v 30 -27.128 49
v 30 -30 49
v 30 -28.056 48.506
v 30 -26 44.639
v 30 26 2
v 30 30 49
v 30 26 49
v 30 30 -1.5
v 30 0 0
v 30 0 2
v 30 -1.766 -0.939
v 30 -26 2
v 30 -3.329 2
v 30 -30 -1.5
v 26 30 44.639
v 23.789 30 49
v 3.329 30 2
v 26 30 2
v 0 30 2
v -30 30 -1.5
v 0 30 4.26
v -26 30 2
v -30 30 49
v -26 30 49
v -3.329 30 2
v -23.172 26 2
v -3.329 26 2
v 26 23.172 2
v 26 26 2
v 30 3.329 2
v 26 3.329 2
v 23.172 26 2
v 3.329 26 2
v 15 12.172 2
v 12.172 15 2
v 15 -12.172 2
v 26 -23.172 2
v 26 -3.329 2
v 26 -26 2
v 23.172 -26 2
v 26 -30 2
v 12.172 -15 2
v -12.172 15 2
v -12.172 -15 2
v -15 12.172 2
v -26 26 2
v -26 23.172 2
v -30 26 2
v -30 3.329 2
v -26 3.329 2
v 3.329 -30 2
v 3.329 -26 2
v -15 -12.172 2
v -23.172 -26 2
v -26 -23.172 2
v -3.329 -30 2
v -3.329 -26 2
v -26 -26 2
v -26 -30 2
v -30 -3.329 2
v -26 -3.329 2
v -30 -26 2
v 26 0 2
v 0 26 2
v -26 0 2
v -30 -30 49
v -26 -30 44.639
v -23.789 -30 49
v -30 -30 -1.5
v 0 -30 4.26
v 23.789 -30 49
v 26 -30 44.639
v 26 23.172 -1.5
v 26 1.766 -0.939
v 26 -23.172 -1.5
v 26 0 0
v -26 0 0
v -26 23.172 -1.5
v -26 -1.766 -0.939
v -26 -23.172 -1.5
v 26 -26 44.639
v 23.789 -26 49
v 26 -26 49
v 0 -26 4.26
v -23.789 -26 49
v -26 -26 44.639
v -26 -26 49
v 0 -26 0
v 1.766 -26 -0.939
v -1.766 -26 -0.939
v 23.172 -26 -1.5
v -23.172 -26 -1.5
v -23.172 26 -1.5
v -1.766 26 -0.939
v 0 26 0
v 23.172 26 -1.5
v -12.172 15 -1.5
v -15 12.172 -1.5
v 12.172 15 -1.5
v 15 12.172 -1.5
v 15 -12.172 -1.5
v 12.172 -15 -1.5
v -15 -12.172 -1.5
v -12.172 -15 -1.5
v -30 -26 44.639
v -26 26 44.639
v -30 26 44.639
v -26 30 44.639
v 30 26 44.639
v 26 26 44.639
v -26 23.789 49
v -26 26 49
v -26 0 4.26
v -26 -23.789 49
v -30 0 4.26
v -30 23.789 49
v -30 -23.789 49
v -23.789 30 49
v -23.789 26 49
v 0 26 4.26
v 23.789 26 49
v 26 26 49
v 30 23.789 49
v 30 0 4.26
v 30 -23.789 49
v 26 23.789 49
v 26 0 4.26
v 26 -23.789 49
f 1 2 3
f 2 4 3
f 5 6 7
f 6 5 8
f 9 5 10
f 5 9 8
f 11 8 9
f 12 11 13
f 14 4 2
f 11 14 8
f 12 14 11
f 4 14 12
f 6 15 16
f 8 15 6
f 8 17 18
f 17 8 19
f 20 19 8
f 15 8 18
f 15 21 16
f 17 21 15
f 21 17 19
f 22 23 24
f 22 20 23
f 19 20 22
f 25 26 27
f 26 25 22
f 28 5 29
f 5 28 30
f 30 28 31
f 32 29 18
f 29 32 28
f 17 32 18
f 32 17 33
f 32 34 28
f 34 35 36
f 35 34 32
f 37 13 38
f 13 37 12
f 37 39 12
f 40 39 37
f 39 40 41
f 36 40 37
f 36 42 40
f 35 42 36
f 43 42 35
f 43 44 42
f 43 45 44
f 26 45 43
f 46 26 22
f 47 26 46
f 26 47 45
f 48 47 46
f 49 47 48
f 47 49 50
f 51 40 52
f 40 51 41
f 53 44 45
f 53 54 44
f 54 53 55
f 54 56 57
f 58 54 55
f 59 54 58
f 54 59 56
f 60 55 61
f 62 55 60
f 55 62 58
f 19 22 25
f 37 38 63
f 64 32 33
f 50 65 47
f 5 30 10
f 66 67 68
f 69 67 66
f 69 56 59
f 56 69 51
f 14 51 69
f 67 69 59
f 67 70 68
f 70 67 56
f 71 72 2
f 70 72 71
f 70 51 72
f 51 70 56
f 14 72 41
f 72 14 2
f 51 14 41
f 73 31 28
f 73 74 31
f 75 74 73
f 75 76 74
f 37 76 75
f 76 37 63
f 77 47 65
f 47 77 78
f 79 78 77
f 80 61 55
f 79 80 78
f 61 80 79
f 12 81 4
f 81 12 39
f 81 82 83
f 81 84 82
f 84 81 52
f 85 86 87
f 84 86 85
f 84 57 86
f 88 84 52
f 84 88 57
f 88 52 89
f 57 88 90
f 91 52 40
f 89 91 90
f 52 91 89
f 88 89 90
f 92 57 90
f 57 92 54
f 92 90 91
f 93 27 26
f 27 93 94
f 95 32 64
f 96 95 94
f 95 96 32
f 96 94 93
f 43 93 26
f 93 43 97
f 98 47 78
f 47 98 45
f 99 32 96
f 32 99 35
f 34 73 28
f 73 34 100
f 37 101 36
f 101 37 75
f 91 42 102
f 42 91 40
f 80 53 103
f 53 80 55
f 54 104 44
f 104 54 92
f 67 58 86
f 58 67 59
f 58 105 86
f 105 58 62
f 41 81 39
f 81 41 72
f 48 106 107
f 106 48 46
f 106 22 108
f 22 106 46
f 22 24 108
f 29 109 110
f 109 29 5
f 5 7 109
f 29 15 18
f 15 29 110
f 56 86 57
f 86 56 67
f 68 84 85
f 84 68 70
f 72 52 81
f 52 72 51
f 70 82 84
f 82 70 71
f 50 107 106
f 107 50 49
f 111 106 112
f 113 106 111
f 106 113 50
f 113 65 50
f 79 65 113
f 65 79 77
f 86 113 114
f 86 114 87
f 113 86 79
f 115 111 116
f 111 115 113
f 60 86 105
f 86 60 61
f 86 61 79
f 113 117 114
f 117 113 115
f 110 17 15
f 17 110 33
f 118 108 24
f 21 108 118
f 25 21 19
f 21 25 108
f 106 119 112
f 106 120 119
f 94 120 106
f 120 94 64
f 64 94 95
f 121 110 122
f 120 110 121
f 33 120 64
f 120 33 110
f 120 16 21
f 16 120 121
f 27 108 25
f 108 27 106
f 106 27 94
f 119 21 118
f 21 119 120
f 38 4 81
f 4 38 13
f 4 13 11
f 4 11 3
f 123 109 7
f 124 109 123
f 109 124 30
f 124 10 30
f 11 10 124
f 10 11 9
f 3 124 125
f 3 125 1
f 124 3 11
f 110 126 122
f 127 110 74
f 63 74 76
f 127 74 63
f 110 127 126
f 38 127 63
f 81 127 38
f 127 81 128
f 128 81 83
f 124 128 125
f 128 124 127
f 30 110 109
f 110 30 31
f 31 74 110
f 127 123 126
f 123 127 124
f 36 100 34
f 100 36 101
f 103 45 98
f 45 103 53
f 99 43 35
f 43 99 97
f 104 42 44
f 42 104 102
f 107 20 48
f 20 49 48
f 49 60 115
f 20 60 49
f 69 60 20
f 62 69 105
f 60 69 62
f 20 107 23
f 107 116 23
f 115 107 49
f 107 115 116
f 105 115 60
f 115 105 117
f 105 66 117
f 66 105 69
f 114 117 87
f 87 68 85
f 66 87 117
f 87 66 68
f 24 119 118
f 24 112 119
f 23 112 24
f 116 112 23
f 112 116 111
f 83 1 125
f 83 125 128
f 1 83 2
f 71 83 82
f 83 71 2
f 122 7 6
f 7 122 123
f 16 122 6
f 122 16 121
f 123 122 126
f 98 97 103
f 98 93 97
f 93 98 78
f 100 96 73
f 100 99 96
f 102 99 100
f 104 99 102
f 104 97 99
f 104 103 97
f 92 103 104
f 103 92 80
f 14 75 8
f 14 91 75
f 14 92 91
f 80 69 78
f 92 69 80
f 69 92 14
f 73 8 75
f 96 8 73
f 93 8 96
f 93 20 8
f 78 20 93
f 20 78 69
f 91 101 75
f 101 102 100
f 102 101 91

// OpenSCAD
// file: ../lib/torus.scad
module torus(
outer_diameter,
circle_diameter
) {
    rotate_extrude(convexity = 4)
    translate([(outer_diameter-circle_diameter)/2, 0, 0])
    circle(d=circle_diameter, $fn=$fn/3);
}
// file: ../rocket-bottom.scad
use <lib/centered_cube.scad>
use <lib/torus.scad>

translate([0,0,-1.1])
ccube([93,93,1]);

module nozzle() {
    color([.2,.2,.2])
    cylinder(d1=40, d2=16+(40-16)*((40-16)/40), h=16);

    color([.35,.35,.35])
    translate([0,0,16])
    torus(34, 5);

    color([.5,.5,.5])
    translate([0,0,16])
    cylinder(d1=16+(40-16)*((40-16)/40), d2=16, h=40-16);
}


module nozzle_and_fin() {
    nozzle();

    color([.8, .8, .8])
    translate([0,0,41.6]) {
        intersection() {
            cylinder(d=38, h=16);
            translate([0,0,-1])
            ccube([50,50,20], centered=[0,1,0]);
        }
        rotate([0,0,180])
        ccube([4,38,16], centered=[0,1,0]);
    }
    
    color([0,0,0])
    translate([0,0,40])
    ccube([16, 16, 8], centered=[1,1,0]);


    // fin mount
    color([1,1,1])
    translate([0,0,57.6])
    resize([38,32,64])
    cylinder(d1=32, d2=16, h=64);

    // fin
    color([1,1,1])
    translate([18,0,65.6])
    rotate([90,0,0])
    translate([0,0,-0.8])
    linear_extrude(height=1.6) {
        polygon(points=[
            [0,0],
            [3,-8],
            [32, -22],
            [32, -6],
            [0, 24]
        ]);
    }
}

module rocket_bottom() {
    nozzle();
    color([.8, .8, .8])
    translate([0,0,40])
    cylinder(d=16, h=18);

    for (r = [0:1:3]) {
        rotate([0,0,r*90])
        translate([42.5,0,0])
        nozzle_and_fin();
    }
    
    // bottom of fuel tank
    color([1,1,1])
    translate([0,0,58])
    cylinder(d=80, h=32);
}

rocket_bottom();
// file: ../lib/lego_brick_builder.scad
/*

 Basic Lego brick builder module for OpenScad by Jorg Janssen 2013 (CC BY-NC 3.0) 
 To use this in your own projects add:

 use <path_to_this_file/lego_brick_builder.scad>
 brick (length, width, height [,smooth]);

 Length and width are in standard lego brick dimensions. 
 Height is in flat brick heights, so for a normal lego brick height = 3.
 Add optional smooth = true for a brick without studs. 
 Use height = 0 to just put studs/knobs on top of other things.

 */
$fn = 50;
 
 // this is it:
brick(5,3,3);


// and this is how it's done:

FLU = 1.6; // Fundamental Lego Unit = 1.6 mm

BRICK_WIDTH = 5*FLU; // basic brick width
BRICK_HEIGHT = 6*FLU; // basic brick height
PLATE_HEIGHT = 2*FLU; // basic plate height
WALL_THICKNESS = FLU; // outer wall of the brick
STUD_RADIUS = 1.5*FLU; // studs are the small cylinders on top of the brick with the lego logo ('nopje' in Dutch)
STUD_HEIGHT = FLU; 
ANTI_STUD_RADIUS = 0.5*4.07*FLU;  // an anti stud is the hollow cylinder inside bricks that have length > 1 and width > 1
PIN_RADIUS = FLU; // a pin is the small cylinder inside bricks that have length = 1 or width = 1
SUPPORT_THICKNESS = 0.254; // support is the thin surface between anti studs, pins and walls, your printer might not print this thin, try thicker!
EDGE = 0.254; // this is the width and height of the bottom line edge of smooth bricks
CORRECTION = 0.1; // addition to each size, to make sure all parts connect by moving them a little inside each other

module brick(length = 4, width = 2, height = 3, smooth = false){

	// brick shell
	difference(){
		cube(size = [length*BRICK_WIDTH,width*BRICK_WIDTH,height*PLATE_HEIGHT]);
		translate([WALL_THICKNESS,WALL_THICKNESS,-WALL_THICKNESS])
		union(){
			cube(size = [length*BRICK_WIDTH-2*WALL_THICKNESS,width*BRICK_WIDTH-2*WALL_THICKNESS,height*PLATE_HEIGHT]);
			// stud inner holes, radius = pin radius
			if (!smooth) {
				translate([STUD_RADIUS+WALL_THICKNESS,STUD_RADIUS+WALL_THICKNESS,height*PLATE_HEIGHT])
				for (y = [0:width-1]){
					for (x = [0:length-1]){
						translate ([x*BRICK_WIDTH-WALL_THICKNESS,y*BRICK_WIDTH-WALL_THICKNESS,-CORRECTION])
						cylinder(h=WALL_THICKNESS+2*CORRECTION,r=PIN_RADIUS);
					}
				}
			}
			// small bottom line edge for smooth bricks
			else {
				translate([-WALL_THICKNESS-CORRECTION,-WALL_THICKNESS-CORRECTION,FLU-CORRECTION]) 
				difference() {
					cube([length*BRICK_WIDTH+2*CORRECTION,width*BRICK_WIDTH+2*CORRECTION,EDGE+CORRECTION]);
					translate([EDGE+CORRECTION,EDGE+CORRECTION,-CORRECTION])
					cube([length*BRICK_WIDTH-2*EDGE,width*BRICK_WIDTH-2*EDGE,EDGE+3*CORRECTION]); 
				}
			}
		}
	}
	// Studs
	if(!smooth){
		translate([STUD_RADIUS+WALL_THICKNESS,STUD_RADIUS+WALL_THICKNESS,height*PLATE_HEIGHT])
		for (y = [0:width-1]){
			for (x = [0:length-1]){
				translate ([x*BRICK_WIDTH,y*BRICK_WIDTH,-CORRECTION])
				difference(){
					cylinder(h=STUD_HEIGHT+CORRECTION, r=STUD_RADIUS);
					// Stud inner holes
					translate([0,0,-CORRECTION])
					cylinder(h=0.5*STUD_HEIGHT+CORRECTION,r=PIN_RADIUS);
				}
				// tech logo - disable this if your printer isn't capable of printing this small
				if ( length > width){
					translate([x*BRICK_WIDTH+0.8,y*BRICK_WIDTH-1.9,STUD_HEIGHT-CORRECTION])
					resize([1.2*1.7,2.2*1.7,0.254+CORRECTION])
					rotate(a=[0,0,90])
					import("tech.stl");
				}
				else {
					translate([x*BRICK_WIDTH-1.9,y*BRICK_WIDTH-0.8,STUD_HEIGHT-CORRECTION])
					resize([2.2*1.7,1.2*1.7,0.254+CORRECTION])
					import("tech.stl");				
				}				
				/* 
				// Alternative 2-square logo
				translate ([x*BRICK_WIDTH+CORRECTION,y*BRICK_WIDTH-CORRECTION,STUD_HEIGHT-CORRECTION])		
				cube([1,1,2*CORRECTION]);
				translate ([x*BRICK_WIDTH-0.9,y*BRICK_WIDTH-0.9,STUD_HEIGHT-CORRECTION])		
				cube([1,1,0.3]);
				*/				
			}
		}
	}
	// Pins x
	if (width == 1 && length > 1) {	
			for (x = [1:length-1]){
				translate([x*BRICK_WIDTH,0.5*BRICK_WIDTH,0])
				cylinder(h=height*PLATE_HEIGHT-WALL_THICKNESS+CORRECTION,r=PIN_RADIUS);
				// Supports
				if (height > 1) {
				translate([x*BRICK_WIDTH-0.5*SUPPORT_THICKNESS,CORRECTION,STUD_HEIGHT])
				cube(size=[SUPPORT_THICKNESS,BRICK_WIDTH-2*CORRECTION,height*PLATE_HEIGHT-STUD_HEIGHT-WALL_THICKNESS+CORRECTION]);
			}
		}
	}
	// Pins y
	if (length == 1 && width > 1) {	
			for (y = [1:width-1]){
			translate([0.5*BRICK_WIDTH,y*BRICK_WIDTH,0])
			cylinder(h=height*PLATE_HEIGHT-WALL_THICKNESS+CORRECTION,r=PIN_RADIUS);
			// Supports
			if (height > 1) {
			translate([CORRECTION,y*BRICK_WIDTH-0.5*SUPPORT_THICKNESS,STUD_HEIGHT])
			cube(size=[BRICK_WIDTH-2*CORRECTION,SUPPORT_THICKNESS,height*PLATE_HEIGHT-STUD_HEIGHT-WALL_THICKNESS+CORRECTION]);}
			
		}
	}
	// Anti Studs
	if (width > 1 && length > 1){
		difference(){
			union(){
				for(y = [1:width-1]){
					for(x = [1:length-1]){
						// anti studs
						translate([x*BRICK_WIDTH,y*BRICK_WIDTH,0])
						cylinder (h=height*PLATE_HEIGHT-WALL_THICKNESS+CORRECTION, r = ANTI_STUD_RADIUS);
						// Supports
						if (height > 1){
							// Support x
							if (x%2 == 0 && (length%2 == 0 || length%4 == 1 && x<length/2 || length%4 == 3 && x>length/2) || x%2 == 1 && (length%4 == 3 && x<length/2 || length%4 == 1 && x>length/2)) {
								translate([BRICK_WIDTH*x-0.5*SUPPORT_THICKNESS,y*BRICK_WIDTH-BRICK_WIDTH+WALL_THICKNESS-CORRECTION,STUD_HEIGHT])
								cube(size=[SUPPORT_THICKNESS,2*BRICK_WIDTH-2*WALL_THICKNESS,height*PLATE_HEIGHT-STUD_HEIGHT-WALL_THICKNESS+CORRECTION]);
							}
							// Supports y							
							if (y%2 == 0 && (width%2 == 0 || width%4 == 1 && y<width/2 || width%4 == 3 && y>width/2) || y%2 == 1 && (width%4 == 3 && y<width/2 || width%4 == 1 && y>width/2)) {
								translate([x*BRICK_WIDTH-BRICK_WIDTH+WALL_THICKNESS-CORRECTION,BRICK_WIDTH*y-0.5*SUPPORT_THICKNESS,STUD_HEIGHT])
								cube(size=[2*BRICK_WIDTH-2*WALL_THICKNESS,SUPPORT_THICKNESS,height*PLATE_HEIGHT-STUD_HEIGHT-WALL_THICKNESS+CORRECTION]);
							}
						}
					}
				}
			}
			union(){
				for(y = [1:width-1]){
					for(x = [1:length-1]){
						// hollow anti studs
						translate([x*BRICK_WIDTH,y*BRICK_WIDTH,-WALL_THICKNESS])
						cylinder (h=height*PLATE_HEIGHT, r = STUD_RADIUS);				
					}
				}
			}
		}		
	}
}
	
// file: ../lib/centered_cube.scad
module ccube(size, centered=[1,1,1]) {
    centered_cube(size, centered);
}

module centered_cube(size, centered=[1,1,1]) {
    translate([(-size[0]/2)*centered[0], (-size[1]/2)*centered[1], (-size[2]/2)*centered[2]])
    cube(size);
}
// main file
use <../shelf.scad>
use <../lib/centered_cube.scad>

g_t=3;

intersection() {
    translate([0,0,-100])
    rotate([0,180,0])
    gantry_layer2();

    translate([0,0,-g_t/2])
    ccube([60,60,50.5], centered=[1,1,0]);
}
